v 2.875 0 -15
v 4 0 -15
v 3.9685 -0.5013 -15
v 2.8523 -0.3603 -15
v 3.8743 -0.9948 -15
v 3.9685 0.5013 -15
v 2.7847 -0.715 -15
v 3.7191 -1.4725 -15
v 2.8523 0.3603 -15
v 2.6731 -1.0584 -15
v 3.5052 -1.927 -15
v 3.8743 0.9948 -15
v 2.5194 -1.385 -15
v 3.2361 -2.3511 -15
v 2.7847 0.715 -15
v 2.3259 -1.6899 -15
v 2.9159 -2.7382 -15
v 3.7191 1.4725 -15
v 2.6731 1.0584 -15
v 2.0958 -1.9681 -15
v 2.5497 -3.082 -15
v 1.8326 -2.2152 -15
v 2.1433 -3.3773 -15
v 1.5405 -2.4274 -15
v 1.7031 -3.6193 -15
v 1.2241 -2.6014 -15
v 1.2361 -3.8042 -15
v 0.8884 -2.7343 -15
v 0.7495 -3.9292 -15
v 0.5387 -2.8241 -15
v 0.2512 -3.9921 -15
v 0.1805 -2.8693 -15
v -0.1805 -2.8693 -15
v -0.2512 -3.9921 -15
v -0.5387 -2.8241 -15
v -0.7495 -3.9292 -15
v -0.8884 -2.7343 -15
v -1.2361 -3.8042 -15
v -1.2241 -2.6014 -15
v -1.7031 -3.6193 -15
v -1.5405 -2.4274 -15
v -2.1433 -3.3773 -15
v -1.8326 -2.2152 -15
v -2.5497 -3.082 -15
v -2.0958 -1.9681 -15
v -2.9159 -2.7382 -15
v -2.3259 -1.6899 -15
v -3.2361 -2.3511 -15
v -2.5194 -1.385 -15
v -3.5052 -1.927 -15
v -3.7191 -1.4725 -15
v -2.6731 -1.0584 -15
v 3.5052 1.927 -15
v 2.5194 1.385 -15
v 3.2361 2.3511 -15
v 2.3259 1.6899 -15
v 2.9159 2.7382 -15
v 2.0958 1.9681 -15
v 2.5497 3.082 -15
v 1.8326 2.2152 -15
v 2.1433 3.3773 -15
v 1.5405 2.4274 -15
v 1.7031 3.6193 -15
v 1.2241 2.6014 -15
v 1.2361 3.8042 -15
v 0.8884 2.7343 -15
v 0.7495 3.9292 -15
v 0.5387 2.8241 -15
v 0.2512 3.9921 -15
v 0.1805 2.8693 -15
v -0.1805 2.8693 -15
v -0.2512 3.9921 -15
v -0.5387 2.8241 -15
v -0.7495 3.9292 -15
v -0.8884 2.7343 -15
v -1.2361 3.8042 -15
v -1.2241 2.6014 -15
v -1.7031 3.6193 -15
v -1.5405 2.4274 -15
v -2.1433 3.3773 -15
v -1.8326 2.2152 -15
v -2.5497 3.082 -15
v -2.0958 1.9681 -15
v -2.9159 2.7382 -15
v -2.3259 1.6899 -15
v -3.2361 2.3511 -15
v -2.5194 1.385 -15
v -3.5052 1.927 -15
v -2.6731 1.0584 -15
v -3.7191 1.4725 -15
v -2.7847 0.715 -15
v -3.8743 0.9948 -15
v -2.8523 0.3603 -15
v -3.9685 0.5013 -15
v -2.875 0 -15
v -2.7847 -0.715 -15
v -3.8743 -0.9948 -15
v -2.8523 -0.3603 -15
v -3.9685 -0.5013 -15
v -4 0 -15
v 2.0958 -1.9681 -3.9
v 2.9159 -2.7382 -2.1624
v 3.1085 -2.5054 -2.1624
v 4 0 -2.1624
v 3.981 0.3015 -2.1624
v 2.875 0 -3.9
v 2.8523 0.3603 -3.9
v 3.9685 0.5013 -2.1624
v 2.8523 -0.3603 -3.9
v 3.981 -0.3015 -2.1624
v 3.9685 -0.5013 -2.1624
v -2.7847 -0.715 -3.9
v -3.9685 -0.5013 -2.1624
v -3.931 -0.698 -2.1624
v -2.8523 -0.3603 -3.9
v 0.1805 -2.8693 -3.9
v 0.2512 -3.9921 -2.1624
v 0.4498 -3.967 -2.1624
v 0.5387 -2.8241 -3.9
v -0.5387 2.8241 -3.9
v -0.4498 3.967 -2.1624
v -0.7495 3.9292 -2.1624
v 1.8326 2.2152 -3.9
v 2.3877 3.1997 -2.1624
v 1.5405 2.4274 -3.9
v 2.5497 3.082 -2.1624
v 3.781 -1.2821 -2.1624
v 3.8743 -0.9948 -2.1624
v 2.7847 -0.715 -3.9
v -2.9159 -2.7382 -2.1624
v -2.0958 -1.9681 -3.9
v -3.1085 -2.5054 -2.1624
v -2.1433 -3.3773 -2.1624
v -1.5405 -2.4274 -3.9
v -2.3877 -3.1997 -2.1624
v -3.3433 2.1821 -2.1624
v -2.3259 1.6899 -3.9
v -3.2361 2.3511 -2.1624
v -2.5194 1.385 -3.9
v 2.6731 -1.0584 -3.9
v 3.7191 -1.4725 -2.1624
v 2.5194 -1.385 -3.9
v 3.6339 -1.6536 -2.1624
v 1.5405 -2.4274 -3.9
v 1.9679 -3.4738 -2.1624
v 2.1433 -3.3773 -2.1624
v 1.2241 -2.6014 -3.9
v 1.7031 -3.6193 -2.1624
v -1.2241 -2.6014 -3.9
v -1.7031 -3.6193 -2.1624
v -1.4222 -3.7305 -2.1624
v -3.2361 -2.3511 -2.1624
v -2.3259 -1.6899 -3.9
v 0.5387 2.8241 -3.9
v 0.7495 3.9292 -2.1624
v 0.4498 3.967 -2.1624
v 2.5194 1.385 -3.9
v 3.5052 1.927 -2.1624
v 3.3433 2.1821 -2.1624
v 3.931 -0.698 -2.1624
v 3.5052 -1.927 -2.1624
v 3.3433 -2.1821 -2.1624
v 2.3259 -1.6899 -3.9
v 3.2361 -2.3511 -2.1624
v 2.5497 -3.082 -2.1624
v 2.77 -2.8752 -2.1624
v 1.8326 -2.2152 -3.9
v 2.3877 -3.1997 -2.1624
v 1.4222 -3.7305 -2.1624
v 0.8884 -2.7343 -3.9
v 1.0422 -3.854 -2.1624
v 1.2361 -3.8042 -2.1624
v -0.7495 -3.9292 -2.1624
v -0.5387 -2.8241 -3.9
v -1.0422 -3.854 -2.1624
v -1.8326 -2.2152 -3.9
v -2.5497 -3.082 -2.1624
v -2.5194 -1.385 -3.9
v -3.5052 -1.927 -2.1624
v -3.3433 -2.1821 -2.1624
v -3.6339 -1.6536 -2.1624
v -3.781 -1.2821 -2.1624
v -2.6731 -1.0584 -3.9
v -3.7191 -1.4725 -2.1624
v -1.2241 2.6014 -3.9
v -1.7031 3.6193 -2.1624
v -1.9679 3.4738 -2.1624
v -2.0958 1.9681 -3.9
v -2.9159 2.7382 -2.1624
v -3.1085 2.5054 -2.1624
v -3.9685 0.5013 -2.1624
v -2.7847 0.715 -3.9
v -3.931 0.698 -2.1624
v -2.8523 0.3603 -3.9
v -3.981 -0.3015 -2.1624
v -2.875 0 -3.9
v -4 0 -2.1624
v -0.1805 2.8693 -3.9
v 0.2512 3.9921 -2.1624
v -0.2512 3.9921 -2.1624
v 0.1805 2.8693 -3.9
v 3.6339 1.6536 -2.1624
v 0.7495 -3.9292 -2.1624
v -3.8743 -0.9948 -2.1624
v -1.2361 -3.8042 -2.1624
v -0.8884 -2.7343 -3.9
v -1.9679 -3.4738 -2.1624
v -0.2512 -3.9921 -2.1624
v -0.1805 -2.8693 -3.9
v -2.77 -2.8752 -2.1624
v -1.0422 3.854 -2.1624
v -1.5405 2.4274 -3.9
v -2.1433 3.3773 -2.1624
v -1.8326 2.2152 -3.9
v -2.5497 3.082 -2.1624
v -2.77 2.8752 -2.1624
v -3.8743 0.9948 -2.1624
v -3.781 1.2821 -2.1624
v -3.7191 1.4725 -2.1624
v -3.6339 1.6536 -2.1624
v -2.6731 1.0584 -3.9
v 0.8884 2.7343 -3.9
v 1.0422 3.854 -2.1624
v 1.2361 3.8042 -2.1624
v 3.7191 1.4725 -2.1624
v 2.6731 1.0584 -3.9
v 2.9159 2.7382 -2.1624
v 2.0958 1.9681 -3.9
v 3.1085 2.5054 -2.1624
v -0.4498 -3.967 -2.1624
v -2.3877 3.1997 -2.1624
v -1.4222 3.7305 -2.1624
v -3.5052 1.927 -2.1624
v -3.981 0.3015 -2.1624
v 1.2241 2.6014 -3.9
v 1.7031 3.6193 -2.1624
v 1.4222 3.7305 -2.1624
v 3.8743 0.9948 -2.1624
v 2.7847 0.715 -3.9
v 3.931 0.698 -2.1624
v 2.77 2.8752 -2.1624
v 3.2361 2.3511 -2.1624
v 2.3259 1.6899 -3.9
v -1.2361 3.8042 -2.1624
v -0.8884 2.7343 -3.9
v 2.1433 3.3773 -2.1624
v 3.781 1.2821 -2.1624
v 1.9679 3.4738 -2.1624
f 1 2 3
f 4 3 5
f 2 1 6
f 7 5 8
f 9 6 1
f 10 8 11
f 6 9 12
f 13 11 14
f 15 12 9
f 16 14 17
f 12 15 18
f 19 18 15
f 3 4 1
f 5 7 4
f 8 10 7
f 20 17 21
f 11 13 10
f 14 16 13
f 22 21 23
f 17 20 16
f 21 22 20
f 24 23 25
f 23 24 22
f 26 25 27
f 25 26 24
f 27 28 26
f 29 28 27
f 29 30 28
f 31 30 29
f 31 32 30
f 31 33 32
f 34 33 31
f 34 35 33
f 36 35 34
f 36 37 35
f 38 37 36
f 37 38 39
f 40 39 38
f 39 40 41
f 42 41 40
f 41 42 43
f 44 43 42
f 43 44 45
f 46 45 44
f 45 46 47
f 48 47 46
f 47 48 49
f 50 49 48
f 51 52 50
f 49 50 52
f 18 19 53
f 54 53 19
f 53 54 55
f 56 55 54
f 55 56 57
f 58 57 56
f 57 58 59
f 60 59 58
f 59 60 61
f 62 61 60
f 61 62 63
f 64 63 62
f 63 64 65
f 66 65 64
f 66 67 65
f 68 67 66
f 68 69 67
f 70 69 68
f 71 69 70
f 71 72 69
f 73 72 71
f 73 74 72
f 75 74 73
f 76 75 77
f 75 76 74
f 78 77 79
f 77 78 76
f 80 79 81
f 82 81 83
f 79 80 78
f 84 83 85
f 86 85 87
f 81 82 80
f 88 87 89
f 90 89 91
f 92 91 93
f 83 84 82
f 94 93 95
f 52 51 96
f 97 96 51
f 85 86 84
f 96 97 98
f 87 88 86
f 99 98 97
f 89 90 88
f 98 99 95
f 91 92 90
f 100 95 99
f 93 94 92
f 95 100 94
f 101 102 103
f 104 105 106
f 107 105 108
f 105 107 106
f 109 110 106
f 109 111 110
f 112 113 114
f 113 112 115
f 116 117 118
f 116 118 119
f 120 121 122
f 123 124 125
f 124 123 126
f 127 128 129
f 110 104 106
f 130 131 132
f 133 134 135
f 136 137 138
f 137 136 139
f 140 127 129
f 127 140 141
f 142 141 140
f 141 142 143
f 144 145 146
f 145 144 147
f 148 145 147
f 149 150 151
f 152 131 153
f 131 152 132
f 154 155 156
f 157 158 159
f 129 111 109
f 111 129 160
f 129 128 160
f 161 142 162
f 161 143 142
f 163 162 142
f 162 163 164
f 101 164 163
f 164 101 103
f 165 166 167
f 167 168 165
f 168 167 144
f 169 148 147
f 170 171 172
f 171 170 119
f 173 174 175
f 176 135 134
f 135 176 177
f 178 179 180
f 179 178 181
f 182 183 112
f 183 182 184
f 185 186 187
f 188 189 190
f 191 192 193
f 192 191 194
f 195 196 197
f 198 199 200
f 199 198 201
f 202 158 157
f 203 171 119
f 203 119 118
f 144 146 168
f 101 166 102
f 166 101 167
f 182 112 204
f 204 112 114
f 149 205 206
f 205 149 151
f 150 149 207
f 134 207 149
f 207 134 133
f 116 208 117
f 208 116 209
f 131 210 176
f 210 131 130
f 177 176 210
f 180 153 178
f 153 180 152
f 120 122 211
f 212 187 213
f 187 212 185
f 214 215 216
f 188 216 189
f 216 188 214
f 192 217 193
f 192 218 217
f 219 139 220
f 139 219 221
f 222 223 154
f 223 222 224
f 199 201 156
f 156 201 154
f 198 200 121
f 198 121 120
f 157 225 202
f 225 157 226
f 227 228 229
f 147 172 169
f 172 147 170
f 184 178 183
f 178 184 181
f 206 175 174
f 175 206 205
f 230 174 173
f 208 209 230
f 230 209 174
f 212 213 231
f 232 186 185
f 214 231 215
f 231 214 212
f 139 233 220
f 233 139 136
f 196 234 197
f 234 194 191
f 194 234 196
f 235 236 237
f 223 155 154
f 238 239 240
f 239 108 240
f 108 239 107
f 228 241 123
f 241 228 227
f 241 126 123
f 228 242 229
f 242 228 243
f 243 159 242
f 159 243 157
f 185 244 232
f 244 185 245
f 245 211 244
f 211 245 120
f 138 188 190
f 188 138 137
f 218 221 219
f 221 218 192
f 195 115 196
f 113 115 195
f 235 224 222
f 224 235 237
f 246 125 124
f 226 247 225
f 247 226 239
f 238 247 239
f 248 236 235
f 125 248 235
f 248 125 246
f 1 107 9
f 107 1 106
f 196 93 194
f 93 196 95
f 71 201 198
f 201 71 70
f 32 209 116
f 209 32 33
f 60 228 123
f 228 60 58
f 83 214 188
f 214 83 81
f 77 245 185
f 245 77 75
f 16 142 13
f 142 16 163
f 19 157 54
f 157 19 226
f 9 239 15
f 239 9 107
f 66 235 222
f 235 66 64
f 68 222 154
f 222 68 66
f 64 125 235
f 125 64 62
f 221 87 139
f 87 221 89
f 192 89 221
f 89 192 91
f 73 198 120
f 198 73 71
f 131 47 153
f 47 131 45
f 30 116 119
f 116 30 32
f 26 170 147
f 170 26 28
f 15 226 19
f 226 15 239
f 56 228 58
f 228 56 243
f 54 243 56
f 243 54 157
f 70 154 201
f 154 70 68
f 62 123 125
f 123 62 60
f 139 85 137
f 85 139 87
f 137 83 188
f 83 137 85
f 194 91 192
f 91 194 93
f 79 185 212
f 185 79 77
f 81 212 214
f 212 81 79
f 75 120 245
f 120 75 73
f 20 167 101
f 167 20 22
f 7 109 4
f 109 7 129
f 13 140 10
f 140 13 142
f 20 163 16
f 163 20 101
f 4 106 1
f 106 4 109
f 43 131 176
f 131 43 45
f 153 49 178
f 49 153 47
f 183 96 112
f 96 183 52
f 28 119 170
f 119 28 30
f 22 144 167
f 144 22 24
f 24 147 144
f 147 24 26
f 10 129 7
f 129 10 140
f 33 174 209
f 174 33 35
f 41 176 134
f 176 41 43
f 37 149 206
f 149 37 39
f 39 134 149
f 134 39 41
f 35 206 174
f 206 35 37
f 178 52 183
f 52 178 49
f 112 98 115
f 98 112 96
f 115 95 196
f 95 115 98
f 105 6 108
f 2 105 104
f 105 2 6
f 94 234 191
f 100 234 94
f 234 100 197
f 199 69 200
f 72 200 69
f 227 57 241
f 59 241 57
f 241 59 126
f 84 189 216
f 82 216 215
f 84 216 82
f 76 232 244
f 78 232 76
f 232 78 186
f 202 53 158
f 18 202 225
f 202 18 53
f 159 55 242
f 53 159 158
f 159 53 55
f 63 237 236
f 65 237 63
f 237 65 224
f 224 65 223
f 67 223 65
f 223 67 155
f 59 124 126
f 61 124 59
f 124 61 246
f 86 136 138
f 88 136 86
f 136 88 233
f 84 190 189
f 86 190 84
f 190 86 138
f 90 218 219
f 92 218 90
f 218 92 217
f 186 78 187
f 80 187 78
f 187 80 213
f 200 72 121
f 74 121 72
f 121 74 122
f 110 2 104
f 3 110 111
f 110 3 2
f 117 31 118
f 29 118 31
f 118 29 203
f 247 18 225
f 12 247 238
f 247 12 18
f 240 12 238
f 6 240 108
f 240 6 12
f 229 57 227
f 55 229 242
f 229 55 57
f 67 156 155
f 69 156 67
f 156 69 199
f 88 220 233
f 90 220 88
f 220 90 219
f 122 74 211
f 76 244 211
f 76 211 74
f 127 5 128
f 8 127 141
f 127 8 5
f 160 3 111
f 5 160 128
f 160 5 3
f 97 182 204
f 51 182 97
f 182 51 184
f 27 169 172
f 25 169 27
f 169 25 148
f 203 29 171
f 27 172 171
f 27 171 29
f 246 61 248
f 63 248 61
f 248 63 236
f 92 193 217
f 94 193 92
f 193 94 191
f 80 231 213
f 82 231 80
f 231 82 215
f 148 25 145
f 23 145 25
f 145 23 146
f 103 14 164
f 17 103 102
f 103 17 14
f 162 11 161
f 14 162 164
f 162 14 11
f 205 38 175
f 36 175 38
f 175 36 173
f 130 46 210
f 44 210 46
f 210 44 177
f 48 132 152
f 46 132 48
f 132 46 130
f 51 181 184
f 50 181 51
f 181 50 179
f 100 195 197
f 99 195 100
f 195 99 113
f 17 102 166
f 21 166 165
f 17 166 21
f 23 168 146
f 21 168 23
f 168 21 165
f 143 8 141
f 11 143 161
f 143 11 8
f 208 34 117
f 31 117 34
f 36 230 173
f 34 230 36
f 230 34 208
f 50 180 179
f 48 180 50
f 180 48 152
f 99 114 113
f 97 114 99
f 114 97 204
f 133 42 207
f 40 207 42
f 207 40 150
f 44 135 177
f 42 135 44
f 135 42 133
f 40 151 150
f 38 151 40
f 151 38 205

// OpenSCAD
$fn = 50;


difference() {
	union() {
		translate(v = [0, 0, -15.0000000000]) {
			cylinder(h = 15, r = 4.0000000000);
		}
		cylinder(h = 0, r = 7.0000000000);
	}
	union() {
		translate(v = [0, 0, 0]) {
			rotate(a = [0, 0, 0]) {
				difference() {
					union() {
						#translate(v = [0, 0, -15.0000000000]) {
							cylinder(h = 15, r = 2.6000000000);
						}
						#translate(v = [0, 0, -3.9000000000]) {
							cylinder(h = 3.9000000000, r = 4.0000000000, r1 = 2.8750000000, r2 = 5.4000000000);
						}
						#translate(v = [0, 0, -15.0000000000]) {
							cylinder(h = 15, r = 2.8750000000);
						}
						#translate(v = [0, 0, -15.0000000000]) {
							cylinder(h = 15, r = 2.6000000000);
						}
					}
					union();
				}
			}
		}
	}
}
